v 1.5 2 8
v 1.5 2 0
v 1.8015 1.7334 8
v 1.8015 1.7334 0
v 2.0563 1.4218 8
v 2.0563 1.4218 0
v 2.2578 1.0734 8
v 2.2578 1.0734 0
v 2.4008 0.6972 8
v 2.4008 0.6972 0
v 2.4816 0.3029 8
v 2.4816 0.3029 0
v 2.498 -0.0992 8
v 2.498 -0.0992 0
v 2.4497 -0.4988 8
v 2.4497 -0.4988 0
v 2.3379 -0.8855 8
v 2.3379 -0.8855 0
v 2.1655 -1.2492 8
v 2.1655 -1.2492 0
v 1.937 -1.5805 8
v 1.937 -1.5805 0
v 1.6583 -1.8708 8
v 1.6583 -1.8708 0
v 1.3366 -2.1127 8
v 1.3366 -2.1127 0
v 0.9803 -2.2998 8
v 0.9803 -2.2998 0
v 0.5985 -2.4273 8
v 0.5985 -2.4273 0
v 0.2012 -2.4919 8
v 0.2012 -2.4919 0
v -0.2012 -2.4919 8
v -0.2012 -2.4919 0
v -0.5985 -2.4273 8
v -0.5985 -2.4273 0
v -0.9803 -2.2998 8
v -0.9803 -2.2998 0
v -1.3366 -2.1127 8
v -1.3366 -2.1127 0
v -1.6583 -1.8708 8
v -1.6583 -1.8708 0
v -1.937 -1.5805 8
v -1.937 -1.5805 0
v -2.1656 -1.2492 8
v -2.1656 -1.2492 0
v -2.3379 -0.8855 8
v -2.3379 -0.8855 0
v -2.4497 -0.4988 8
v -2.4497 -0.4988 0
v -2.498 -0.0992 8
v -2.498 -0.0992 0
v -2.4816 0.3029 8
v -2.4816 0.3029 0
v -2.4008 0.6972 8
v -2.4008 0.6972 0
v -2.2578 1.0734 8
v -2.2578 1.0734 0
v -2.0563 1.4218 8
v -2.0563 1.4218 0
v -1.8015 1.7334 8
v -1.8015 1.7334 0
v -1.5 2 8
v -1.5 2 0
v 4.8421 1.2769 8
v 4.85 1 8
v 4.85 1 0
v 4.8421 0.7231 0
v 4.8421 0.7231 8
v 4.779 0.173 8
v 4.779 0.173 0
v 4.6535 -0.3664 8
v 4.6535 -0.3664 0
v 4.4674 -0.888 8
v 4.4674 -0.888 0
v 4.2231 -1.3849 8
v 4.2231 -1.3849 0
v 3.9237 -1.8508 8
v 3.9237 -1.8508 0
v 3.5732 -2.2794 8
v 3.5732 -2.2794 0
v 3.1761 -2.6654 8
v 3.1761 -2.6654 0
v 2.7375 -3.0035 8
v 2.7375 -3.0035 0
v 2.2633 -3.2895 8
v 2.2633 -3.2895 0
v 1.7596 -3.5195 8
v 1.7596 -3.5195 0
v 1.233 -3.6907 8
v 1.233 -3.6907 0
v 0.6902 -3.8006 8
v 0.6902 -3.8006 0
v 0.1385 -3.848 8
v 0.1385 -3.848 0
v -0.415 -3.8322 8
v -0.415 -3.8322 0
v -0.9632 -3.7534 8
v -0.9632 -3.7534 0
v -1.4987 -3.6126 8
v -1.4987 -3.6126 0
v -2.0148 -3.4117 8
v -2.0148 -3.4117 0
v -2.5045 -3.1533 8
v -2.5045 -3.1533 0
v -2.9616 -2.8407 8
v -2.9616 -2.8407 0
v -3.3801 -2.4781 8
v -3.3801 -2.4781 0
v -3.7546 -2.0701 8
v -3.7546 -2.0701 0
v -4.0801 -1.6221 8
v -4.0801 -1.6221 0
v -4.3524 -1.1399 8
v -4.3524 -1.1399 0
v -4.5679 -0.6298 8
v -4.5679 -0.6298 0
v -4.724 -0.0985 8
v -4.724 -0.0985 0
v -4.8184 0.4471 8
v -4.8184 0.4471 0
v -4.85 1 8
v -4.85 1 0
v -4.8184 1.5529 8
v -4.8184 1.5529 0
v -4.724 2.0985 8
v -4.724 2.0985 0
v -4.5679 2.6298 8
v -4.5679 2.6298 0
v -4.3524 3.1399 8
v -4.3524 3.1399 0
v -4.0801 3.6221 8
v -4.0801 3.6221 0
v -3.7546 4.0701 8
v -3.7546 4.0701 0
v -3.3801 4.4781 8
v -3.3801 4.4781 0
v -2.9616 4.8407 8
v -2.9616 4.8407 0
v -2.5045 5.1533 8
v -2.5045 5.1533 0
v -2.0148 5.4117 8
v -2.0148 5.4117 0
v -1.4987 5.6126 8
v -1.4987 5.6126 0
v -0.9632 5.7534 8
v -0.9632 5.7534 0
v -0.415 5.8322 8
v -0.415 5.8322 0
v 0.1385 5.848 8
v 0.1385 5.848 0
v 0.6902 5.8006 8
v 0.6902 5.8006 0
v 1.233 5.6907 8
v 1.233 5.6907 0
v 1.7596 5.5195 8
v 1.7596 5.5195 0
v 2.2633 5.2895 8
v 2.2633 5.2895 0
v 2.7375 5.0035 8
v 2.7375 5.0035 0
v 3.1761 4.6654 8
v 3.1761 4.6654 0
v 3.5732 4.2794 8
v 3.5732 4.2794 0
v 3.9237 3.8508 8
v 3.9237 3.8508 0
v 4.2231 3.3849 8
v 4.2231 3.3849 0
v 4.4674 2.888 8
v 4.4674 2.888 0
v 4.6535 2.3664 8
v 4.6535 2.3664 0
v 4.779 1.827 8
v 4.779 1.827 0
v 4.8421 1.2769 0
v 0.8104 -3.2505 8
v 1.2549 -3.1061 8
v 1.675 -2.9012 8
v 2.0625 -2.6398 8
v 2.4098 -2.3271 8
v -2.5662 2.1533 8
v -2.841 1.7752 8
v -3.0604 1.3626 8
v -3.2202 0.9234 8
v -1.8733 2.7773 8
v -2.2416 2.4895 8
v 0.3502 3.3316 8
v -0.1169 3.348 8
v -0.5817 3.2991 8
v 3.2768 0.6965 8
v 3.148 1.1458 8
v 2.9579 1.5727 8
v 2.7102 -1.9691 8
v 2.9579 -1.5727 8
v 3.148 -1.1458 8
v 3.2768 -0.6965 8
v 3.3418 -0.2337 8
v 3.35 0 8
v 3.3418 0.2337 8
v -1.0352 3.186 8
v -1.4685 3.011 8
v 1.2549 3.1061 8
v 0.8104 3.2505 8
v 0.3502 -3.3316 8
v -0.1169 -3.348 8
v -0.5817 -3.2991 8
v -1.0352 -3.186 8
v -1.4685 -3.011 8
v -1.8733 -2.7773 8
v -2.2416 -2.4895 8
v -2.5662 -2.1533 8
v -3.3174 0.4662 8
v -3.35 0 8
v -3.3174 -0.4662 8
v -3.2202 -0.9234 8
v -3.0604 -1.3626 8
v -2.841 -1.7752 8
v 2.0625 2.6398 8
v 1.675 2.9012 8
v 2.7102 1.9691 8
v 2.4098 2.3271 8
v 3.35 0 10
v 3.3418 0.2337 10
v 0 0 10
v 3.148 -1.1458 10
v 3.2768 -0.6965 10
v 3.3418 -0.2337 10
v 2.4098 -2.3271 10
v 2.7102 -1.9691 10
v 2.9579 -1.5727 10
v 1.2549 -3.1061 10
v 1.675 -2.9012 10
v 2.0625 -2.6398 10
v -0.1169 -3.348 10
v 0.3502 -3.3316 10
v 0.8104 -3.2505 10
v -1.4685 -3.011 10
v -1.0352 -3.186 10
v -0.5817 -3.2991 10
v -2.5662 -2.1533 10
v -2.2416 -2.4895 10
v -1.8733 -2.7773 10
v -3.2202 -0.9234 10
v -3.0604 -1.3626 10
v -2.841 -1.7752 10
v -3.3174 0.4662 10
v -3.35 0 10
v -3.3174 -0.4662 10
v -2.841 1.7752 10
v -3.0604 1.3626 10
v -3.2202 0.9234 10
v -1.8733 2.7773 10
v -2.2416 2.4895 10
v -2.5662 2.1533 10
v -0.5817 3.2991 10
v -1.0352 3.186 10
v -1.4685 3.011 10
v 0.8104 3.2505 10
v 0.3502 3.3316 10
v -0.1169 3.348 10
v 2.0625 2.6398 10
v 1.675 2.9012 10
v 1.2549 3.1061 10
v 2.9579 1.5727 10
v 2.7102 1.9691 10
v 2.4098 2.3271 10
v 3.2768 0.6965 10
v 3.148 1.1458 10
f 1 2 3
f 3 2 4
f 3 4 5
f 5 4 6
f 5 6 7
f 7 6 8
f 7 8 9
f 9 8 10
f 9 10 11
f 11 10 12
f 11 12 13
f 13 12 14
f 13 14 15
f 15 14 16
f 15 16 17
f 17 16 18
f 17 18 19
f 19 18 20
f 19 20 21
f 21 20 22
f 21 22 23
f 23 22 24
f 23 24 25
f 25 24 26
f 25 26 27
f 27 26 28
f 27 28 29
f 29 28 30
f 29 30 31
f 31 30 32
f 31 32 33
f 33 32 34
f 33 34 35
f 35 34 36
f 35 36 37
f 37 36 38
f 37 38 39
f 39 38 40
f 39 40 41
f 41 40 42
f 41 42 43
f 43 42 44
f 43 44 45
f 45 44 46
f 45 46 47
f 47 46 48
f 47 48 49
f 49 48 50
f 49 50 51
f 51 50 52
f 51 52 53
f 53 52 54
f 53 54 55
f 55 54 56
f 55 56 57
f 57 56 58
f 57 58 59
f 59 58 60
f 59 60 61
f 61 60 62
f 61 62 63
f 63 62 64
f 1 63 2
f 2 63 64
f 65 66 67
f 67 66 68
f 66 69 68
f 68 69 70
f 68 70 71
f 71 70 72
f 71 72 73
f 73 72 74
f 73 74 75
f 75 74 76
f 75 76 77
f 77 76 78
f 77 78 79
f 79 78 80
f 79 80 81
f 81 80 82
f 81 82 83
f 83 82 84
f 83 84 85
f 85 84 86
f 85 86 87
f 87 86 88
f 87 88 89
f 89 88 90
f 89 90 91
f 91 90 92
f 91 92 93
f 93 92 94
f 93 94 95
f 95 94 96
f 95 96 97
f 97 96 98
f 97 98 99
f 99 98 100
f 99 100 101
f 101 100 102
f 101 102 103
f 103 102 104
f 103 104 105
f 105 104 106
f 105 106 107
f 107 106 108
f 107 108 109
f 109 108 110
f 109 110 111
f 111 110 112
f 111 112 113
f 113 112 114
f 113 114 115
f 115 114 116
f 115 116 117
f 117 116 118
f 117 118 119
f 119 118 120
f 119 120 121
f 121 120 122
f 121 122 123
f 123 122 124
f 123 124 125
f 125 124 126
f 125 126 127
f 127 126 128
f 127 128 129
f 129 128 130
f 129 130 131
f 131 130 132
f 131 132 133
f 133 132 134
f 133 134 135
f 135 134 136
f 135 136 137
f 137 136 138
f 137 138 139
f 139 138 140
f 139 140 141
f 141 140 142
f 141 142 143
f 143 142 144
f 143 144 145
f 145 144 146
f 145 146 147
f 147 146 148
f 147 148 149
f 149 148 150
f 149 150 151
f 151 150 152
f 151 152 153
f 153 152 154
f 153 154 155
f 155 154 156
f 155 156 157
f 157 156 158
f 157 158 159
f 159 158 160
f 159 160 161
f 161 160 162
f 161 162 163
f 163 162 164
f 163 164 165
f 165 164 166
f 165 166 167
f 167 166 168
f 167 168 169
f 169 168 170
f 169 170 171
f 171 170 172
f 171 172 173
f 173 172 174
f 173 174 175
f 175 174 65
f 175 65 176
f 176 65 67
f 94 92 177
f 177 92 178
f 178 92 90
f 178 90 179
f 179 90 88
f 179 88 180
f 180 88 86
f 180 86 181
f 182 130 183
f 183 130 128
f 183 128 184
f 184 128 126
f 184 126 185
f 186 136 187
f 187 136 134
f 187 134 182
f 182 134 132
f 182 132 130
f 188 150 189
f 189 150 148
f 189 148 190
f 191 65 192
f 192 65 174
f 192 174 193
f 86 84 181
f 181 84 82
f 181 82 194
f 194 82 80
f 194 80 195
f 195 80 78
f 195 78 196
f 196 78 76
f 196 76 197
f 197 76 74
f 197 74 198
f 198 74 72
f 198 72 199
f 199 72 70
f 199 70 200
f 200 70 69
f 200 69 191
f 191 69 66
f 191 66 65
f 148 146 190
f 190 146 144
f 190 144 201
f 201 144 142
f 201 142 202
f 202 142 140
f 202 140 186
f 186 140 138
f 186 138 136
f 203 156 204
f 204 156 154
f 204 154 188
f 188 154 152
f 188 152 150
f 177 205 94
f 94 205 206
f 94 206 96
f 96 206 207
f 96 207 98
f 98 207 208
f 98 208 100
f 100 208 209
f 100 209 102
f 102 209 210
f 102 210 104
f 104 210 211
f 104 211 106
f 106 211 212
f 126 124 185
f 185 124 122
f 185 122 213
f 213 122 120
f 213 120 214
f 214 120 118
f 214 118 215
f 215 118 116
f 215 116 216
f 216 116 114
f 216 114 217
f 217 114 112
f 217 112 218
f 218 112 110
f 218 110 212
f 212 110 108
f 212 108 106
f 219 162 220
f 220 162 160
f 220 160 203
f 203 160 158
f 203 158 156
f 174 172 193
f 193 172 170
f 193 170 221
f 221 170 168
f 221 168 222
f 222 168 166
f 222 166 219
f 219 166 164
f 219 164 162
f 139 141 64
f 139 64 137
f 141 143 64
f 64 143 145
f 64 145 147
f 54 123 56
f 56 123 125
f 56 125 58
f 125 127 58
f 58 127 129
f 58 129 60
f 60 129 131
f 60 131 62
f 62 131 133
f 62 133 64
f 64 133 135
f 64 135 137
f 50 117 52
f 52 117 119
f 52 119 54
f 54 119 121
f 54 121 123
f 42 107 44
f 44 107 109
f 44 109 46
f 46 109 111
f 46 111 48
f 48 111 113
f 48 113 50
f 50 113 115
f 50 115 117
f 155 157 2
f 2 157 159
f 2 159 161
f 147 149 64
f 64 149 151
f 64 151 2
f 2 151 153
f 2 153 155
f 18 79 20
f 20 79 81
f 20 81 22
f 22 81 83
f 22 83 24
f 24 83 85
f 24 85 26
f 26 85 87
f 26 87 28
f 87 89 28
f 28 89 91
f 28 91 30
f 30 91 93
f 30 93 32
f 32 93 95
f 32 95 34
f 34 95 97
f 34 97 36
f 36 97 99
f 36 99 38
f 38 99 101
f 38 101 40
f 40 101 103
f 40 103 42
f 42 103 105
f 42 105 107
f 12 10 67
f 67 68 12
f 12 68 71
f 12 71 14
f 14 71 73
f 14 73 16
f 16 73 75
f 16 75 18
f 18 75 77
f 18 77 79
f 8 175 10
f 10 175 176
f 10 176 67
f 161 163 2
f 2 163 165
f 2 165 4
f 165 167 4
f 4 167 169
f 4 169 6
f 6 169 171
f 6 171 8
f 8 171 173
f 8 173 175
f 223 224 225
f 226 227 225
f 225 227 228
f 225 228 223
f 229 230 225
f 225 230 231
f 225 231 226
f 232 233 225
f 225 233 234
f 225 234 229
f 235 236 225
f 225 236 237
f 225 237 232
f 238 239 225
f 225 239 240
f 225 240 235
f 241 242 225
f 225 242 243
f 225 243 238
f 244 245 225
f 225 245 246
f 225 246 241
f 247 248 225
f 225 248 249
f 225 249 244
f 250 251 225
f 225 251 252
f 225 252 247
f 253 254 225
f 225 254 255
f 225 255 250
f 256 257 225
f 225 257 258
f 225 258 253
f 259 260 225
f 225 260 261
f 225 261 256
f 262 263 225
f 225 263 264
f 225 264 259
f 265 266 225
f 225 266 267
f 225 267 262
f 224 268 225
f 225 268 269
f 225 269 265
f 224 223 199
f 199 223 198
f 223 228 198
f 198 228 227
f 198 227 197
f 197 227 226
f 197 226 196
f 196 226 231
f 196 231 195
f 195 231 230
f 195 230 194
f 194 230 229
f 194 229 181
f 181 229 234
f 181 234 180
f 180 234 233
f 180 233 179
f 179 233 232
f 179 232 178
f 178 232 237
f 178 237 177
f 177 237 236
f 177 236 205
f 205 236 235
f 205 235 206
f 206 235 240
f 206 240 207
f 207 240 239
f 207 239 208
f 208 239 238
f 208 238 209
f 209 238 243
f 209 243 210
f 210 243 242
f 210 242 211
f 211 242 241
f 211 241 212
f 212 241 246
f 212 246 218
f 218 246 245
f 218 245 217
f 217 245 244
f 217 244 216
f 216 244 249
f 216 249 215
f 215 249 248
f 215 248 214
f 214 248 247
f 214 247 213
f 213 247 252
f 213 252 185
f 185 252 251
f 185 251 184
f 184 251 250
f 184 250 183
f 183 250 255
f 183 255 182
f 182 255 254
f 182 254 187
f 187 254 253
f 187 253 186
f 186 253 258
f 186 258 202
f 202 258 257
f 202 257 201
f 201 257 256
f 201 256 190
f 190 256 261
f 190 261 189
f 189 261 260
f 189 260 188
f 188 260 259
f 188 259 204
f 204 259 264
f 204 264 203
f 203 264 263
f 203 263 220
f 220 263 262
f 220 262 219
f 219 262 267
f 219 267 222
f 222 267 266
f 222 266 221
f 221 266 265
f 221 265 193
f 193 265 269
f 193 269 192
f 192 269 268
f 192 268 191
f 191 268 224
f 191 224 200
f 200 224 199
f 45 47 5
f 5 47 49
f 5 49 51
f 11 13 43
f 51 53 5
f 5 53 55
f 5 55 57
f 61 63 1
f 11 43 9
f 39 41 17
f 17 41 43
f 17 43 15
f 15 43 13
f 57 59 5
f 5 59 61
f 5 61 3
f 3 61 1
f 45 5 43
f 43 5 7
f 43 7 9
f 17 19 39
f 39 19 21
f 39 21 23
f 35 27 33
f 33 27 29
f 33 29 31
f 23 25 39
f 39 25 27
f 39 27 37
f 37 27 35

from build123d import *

# Parameters (mm, degrees)
ESQUISSE1_R        = 4.85
BOSS_EXTRU_1_DEPTH = 8
ESQUISSE2_R        = 3.35
BOSS_EXTRU_2_DEPTH = 2


with BuildPart() as part:
    # Esquisse1 → Boss.-Extru.1 (new body)
    with BuildSketch(Plane.XY):
        with Locations((0, 1)):
            Circle(ESQUISSE1_R)
        with BuildLine():
            Line((-1.5, 2), (1.5, 2))
            ThreePointArc((1.5, 2), (0, -2.5), (-1.5, 2))
        make_face(mode=Mode.SUBTRACT)
    extrude(amount=BOSS_EXTRU_1_DEPTH)

    # Esquisse2 → Boss.-Extru.2 (add)
    with BuildSketch(Plane.XY.offset(8)):
        Circle(ESQUISSE2_R)
    extrude(amount=BOSS_EXTRU_2_DEPTH)


solid = part.part
